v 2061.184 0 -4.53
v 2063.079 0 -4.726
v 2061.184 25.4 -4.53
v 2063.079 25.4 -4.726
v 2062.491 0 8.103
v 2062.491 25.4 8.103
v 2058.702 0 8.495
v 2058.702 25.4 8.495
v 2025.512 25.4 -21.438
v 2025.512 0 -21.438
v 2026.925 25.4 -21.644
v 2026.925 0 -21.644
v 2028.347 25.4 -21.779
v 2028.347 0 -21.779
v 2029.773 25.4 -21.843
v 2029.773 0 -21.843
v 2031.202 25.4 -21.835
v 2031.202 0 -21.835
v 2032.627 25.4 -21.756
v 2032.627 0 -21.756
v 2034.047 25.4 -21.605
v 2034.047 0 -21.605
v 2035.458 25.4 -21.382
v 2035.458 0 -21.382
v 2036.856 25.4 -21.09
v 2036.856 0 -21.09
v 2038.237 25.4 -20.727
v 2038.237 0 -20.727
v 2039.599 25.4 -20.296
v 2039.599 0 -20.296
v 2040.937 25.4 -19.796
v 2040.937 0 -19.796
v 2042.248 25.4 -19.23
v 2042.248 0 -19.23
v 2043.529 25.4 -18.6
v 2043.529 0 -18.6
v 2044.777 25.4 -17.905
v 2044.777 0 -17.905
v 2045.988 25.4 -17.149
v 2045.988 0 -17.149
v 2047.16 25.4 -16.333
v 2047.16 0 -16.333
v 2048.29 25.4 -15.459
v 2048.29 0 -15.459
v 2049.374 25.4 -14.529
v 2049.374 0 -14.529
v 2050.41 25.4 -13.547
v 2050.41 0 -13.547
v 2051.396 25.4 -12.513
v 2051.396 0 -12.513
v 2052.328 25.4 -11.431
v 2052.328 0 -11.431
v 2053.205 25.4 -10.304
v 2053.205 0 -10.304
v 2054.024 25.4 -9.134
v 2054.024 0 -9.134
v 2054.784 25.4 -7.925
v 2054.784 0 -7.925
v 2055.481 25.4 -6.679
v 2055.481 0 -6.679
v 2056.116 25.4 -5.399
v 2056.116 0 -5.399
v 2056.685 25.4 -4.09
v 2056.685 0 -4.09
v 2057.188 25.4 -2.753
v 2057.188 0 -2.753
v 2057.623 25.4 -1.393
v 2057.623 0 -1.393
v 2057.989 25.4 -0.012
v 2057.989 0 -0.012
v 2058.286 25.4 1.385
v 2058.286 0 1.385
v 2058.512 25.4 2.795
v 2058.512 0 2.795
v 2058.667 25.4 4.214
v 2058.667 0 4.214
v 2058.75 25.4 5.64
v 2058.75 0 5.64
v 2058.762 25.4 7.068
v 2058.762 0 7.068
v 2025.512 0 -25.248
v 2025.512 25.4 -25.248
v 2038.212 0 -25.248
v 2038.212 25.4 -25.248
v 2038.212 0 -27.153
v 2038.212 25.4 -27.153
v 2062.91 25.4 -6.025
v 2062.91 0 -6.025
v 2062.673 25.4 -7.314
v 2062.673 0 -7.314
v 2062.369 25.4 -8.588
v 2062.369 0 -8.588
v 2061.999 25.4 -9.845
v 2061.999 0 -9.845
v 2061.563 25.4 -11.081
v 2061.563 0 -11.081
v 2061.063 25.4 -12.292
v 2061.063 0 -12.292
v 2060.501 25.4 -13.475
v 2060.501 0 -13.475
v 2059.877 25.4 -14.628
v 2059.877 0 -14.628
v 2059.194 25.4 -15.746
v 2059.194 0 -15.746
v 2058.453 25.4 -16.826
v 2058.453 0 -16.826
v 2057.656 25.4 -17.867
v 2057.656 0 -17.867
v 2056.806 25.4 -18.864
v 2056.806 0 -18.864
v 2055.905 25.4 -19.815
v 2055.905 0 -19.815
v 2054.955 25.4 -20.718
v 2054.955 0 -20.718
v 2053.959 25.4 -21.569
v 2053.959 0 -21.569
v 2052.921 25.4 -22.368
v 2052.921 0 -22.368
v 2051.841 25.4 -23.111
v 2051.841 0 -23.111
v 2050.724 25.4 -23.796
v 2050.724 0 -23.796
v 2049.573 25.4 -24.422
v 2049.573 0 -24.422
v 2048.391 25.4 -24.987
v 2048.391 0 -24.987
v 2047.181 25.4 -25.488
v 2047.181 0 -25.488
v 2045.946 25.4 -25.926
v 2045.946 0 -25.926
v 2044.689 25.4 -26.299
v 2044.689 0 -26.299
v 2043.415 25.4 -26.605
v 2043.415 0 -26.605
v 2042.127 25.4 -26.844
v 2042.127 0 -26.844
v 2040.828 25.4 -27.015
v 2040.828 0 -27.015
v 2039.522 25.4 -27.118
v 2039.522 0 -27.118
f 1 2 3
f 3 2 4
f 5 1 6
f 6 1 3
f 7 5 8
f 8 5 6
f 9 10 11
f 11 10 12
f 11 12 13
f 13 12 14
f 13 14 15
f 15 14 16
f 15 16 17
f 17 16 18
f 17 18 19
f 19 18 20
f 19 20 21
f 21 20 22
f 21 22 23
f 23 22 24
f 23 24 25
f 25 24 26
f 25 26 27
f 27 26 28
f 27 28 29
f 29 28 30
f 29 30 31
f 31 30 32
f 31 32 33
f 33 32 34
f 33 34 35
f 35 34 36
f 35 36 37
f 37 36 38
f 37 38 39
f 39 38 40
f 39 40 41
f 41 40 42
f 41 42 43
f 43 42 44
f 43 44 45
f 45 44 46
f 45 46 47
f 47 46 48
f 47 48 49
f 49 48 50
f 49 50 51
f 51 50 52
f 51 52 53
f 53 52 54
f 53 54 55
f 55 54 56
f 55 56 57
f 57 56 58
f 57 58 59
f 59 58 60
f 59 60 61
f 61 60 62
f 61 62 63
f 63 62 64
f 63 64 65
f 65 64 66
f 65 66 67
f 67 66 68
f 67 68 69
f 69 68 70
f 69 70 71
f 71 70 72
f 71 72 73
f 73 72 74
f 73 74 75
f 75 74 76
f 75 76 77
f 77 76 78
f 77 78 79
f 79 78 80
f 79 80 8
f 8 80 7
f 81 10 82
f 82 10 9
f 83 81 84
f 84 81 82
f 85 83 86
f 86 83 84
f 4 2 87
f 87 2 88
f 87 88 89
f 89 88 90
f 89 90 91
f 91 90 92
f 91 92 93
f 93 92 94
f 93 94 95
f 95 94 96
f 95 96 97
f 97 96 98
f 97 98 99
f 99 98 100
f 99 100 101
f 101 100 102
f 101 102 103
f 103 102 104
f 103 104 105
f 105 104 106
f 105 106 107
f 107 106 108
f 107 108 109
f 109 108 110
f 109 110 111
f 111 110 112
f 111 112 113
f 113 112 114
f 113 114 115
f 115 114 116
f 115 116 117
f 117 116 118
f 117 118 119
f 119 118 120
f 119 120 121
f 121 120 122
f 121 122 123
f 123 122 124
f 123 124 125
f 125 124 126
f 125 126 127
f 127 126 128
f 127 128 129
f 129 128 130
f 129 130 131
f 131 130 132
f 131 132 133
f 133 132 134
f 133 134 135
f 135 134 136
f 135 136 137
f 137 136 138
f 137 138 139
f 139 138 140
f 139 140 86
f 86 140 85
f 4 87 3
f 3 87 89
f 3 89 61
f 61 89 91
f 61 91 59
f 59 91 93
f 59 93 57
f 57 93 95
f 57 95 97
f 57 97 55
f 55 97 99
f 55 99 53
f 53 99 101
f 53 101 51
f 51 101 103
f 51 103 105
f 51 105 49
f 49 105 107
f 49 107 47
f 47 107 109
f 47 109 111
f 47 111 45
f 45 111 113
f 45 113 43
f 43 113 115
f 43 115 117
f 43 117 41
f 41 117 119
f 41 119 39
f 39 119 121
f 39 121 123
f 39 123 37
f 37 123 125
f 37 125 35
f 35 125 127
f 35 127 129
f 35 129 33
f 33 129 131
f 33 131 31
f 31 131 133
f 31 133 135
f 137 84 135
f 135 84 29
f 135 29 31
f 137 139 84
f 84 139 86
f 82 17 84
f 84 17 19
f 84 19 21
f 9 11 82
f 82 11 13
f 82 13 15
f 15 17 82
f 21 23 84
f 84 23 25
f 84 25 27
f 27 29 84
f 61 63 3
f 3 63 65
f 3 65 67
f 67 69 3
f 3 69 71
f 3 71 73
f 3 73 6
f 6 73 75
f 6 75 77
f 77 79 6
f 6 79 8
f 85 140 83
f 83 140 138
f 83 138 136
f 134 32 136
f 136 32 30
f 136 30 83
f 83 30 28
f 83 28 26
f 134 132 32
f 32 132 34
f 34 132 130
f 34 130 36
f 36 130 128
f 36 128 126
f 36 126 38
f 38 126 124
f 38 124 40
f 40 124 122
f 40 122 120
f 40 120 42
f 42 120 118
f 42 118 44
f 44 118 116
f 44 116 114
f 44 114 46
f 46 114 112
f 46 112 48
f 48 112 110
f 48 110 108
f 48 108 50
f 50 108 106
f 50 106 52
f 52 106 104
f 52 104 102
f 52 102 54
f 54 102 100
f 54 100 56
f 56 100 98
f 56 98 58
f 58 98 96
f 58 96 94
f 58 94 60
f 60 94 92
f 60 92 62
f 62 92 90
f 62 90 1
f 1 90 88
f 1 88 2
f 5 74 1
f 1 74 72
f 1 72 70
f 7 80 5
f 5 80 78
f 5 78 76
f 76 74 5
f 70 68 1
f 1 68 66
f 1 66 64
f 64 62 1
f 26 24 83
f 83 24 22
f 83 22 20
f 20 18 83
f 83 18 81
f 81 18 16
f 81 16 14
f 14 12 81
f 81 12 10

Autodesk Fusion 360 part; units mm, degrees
sketch "Front, Bottom corner" plane through (0, 0, 0) normal (0, 1, 0) x (1, 0, 0)
  circle A0 centre (2038.212, 2.1526) radius 25 construction
  line L0 (2073.9927, -100.7451) -> (2060.9213, 25.5804) construction
  line L1 (1557.274, 27.1526) -> (2059.178, 27.1526) construction
  line L2 (2038.212, 27.1526) -> (2038.212, 25.2476)
  line L3 (2038.212, 25.2476) -> (2025.512, 25.2476)
  line L4 (2025.512, 25.2476) -> (2025.512, 21.4376)
  line L5 (2063.0792, 4.7257) -> (2061.1843, 4.5296)
  line L6 (2061.1843, 4.5296) -> (2062.4914, -8.1029)
  line L7 (2062.4914, -8.1029) -> (2058.7017, -8.4951)
  arc A1 (2063.0792, 4.7257) -> (2038.212, 27.1526) centre (2038.212, 2.1526) ccw
  line L8 (2038.212, 2.1526) -> (2054.9552, 20.7177) construction
  arc A2 (2058.7017, -8.4951) -> (2025.512, 21.4376) centre (2030.3296, -6.5875) ccw
  point P0 (2049.3741, 14.5294)
extrude "Extrude1" add sketch "Front, Bottom corner" along normal blind 25.4
